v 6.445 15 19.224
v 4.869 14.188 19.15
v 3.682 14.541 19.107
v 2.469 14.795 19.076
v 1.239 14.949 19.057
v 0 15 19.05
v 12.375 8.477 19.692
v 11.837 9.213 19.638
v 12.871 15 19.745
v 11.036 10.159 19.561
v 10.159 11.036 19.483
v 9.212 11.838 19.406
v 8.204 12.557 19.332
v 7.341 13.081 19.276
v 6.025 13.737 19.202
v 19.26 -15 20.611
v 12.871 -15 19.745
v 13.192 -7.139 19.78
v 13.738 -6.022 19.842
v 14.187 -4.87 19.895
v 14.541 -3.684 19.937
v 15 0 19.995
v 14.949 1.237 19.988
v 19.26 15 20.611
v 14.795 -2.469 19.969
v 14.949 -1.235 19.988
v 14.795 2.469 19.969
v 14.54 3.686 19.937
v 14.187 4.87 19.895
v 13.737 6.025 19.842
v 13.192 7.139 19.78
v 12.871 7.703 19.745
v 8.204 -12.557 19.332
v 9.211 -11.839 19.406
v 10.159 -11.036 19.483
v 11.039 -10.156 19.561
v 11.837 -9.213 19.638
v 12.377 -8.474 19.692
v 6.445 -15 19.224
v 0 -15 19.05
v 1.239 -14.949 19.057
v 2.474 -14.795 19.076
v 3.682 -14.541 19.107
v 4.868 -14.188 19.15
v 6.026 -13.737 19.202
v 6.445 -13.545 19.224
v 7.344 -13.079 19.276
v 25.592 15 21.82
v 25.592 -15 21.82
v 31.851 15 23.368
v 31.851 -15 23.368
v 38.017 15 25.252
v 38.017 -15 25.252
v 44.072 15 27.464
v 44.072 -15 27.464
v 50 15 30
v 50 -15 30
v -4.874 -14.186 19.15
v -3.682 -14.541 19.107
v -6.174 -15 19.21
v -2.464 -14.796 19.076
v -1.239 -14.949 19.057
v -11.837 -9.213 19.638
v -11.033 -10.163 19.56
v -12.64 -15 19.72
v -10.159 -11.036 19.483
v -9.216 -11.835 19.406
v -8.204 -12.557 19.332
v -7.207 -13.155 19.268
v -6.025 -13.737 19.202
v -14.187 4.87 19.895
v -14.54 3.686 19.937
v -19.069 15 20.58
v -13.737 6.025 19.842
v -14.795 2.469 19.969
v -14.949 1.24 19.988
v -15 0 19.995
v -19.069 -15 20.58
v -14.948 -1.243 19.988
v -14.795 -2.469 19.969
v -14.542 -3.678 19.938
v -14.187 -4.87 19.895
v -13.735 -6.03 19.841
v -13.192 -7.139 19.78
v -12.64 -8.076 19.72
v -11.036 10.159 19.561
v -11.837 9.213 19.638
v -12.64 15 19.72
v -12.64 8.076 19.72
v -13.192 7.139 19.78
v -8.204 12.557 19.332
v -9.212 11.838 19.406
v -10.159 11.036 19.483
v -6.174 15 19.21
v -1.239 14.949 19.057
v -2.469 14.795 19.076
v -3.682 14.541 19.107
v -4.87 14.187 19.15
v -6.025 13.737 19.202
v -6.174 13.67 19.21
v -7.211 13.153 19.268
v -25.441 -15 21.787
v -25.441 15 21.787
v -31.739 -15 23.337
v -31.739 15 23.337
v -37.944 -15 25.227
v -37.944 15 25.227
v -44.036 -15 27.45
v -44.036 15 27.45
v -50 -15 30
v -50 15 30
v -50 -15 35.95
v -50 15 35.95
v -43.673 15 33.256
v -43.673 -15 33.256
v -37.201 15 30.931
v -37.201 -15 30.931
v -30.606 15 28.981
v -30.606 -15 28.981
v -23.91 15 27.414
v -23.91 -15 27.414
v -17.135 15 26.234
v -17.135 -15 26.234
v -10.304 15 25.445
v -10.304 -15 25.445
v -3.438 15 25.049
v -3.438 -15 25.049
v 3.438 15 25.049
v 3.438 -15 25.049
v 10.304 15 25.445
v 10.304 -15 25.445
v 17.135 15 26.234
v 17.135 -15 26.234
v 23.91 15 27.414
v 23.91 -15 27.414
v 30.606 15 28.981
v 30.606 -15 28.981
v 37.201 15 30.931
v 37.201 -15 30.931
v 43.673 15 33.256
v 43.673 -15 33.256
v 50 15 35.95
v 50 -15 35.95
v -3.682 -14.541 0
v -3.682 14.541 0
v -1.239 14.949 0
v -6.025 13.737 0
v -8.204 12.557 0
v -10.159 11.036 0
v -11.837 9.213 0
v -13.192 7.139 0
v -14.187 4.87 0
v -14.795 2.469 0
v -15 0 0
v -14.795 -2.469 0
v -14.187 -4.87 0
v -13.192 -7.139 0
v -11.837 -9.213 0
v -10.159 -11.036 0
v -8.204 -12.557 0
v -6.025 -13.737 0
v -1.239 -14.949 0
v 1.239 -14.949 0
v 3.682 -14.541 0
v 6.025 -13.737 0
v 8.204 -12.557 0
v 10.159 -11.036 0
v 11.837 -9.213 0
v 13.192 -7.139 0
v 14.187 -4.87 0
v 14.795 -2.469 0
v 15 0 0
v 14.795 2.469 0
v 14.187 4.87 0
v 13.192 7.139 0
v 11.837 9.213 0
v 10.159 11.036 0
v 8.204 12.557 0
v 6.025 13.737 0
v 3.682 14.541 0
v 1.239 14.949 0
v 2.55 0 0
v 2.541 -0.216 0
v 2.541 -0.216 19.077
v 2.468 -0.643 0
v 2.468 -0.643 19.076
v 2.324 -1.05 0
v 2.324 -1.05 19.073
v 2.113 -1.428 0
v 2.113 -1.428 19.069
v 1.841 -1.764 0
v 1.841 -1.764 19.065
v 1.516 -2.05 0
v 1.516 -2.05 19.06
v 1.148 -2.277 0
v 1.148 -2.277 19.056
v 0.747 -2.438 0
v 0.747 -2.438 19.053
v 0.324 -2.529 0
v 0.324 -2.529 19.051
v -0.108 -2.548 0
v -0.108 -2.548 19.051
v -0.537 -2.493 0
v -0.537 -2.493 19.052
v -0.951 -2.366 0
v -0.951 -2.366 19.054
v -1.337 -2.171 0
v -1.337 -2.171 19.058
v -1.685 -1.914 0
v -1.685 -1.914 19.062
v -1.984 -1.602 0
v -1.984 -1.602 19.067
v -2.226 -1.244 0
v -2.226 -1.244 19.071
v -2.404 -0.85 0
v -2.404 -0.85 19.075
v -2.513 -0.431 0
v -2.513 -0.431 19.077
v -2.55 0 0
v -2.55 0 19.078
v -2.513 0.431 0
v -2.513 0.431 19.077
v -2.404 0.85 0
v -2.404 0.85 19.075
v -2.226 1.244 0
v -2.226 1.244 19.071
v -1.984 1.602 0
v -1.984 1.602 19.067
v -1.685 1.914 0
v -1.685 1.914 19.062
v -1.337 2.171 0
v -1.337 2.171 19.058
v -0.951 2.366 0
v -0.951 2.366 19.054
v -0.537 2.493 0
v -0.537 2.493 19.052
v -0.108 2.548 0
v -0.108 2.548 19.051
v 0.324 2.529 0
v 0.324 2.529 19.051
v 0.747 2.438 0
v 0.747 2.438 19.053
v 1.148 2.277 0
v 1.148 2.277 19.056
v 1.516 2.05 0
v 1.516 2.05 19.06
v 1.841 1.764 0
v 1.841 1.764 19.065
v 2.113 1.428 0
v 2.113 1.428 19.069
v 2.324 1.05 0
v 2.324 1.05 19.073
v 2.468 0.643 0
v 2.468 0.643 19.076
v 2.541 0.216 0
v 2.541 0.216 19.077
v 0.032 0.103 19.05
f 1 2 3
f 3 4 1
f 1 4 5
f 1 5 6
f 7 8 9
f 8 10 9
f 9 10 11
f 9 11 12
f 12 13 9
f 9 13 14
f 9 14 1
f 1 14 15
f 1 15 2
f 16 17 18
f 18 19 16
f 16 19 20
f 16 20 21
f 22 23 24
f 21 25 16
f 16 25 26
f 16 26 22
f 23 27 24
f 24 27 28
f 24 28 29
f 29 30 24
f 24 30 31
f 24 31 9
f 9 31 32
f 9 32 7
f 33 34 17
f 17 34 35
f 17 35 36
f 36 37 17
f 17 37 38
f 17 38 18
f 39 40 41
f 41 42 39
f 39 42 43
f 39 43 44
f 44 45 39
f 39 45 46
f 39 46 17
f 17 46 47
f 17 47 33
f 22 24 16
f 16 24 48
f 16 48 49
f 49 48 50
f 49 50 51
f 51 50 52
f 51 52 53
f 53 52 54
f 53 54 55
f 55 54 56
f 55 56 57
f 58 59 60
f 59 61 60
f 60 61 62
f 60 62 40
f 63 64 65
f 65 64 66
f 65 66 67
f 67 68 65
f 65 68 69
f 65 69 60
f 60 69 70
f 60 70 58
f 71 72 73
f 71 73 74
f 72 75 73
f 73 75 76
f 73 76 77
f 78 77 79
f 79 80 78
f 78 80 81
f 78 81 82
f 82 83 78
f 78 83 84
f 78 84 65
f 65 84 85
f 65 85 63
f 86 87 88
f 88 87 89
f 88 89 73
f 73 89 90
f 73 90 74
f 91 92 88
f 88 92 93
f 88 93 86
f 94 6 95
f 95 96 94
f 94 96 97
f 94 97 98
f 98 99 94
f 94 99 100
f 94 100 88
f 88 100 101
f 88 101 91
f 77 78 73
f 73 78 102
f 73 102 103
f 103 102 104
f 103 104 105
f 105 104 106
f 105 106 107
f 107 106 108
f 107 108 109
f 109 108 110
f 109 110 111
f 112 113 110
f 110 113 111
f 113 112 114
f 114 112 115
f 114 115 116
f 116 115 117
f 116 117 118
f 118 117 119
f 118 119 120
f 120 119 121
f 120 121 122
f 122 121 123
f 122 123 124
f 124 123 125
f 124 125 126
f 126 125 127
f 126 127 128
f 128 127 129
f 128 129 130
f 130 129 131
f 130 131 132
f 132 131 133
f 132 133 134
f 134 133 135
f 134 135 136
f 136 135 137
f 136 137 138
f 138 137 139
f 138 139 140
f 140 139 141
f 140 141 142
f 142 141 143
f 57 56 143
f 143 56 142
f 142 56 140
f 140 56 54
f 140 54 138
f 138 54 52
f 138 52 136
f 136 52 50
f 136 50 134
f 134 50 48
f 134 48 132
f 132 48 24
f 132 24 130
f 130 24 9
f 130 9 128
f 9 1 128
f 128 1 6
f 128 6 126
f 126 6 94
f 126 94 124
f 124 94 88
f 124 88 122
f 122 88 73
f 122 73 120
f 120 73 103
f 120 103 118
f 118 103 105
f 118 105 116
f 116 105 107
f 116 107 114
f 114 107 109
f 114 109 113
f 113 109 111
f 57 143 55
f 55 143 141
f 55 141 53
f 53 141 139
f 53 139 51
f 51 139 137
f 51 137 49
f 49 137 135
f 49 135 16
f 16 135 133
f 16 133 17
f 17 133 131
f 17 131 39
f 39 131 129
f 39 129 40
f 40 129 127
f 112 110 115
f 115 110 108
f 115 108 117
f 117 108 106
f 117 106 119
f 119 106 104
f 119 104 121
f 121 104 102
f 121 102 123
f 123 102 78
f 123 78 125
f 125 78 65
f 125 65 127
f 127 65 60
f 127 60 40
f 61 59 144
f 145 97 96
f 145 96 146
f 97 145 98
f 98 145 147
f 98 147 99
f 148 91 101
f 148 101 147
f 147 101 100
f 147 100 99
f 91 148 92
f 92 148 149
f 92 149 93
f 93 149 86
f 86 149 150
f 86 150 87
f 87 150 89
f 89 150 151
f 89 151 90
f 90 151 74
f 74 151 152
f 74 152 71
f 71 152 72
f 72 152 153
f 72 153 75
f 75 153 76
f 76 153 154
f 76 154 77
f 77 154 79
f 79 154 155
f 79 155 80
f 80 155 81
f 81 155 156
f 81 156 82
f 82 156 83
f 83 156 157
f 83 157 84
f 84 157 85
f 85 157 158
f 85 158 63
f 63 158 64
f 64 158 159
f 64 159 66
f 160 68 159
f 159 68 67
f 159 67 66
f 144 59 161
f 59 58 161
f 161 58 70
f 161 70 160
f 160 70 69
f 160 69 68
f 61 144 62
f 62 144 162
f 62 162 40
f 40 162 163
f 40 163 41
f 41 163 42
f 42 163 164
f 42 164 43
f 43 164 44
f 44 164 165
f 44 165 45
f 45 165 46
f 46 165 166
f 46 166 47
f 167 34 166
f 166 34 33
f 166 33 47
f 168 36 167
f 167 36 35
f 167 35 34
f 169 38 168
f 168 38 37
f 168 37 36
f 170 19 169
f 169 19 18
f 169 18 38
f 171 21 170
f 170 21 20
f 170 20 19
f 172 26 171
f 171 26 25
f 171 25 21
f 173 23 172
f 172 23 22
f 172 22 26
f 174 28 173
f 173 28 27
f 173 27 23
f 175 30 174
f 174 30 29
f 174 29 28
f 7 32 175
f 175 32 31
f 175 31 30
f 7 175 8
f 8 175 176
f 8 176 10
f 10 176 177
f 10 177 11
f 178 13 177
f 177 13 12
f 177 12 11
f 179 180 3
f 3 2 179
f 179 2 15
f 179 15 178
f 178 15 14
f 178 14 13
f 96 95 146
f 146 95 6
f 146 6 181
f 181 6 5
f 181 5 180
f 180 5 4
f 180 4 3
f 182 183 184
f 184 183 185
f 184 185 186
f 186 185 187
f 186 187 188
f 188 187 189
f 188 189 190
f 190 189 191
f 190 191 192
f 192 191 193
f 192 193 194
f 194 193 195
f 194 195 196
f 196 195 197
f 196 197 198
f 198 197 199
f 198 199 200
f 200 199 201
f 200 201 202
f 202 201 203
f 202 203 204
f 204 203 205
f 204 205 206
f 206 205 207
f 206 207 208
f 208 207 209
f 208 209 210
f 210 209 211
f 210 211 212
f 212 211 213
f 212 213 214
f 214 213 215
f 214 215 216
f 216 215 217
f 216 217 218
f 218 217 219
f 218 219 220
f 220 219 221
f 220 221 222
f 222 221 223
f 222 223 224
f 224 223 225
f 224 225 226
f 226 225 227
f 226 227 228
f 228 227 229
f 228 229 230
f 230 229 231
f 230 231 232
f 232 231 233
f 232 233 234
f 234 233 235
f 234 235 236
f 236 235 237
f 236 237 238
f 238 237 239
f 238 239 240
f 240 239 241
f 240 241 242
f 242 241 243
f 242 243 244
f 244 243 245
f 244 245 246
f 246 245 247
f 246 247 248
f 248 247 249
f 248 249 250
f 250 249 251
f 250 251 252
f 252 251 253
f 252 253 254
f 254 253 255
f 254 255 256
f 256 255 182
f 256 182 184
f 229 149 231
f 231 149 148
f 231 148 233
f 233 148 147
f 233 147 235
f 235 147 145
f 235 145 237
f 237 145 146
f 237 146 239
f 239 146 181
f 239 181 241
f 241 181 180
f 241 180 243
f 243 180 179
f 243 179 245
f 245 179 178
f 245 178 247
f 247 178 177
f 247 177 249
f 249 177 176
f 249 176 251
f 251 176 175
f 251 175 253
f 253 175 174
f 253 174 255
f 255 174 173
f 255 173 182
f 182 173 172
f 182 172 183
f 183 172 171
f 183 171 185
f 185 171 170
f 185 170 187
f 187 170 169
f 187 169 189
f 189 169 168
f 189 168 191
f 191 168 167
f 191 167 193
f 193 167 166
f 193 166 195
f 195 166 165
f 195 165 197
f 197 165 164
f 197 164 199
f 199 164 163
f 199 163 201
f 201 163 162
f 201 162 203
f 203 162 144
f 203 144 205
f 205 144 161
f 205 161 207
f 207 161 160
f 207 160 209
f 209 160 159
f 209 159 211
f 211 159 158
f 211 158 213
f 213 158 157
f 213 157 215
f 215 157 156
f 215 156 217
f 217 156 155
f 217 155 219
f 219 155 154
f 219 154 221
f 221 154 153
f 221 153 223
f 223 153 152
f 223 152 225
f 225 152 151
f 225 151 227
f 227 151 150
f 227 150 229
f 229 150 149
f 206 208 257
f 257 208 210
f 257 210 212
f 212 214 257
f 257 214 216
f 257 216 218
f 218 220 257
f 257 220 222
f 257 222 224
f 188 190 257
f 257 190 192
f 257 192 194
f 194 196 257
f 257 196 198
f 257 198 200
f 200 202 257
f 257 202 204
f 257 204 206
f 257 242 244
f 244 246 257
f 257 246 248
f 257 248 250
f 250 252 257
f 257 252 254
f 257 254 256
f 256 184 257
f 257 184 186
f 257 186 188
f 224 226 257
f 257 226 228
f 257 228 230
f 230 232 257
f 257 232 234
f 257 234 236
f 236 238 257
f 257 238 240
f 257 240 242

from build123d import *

# Parameters (mm, degrees)
SKETCH1_R                = 15
SKETCH1_R_2              = 2.55
BOSS_EXTRUDE1_DEPTH      = 20
BOSS_EXTRUDE2_DEPTH      = 15
BOSS_EXTRUDE2_DEPTH_BACK = 15


with BuildPart() as part:
    # Sketch1 → Boss-Extrude1 (new body)
    with BuildSketch(Plane.XY):
        Circle(SKETCH1_R)
        Circle(SKETCH1_R_2, mode=Mode.SUBTRACT)
    extrude(amount=BOSS_EXTRUDE1_DEPTH)

    # Sketch2 → Boss-Extrude2 (add, two sides)
    with BuildSketch(Plane(origin=(0, 0, 0), x_dir=(1, 0, 0), z_dir=(0, 1, 0))) as boss_extrude2_sk:
        with BuildLine():
            Line((50, -35.949524979), (50, -30))
            ThreePointArc((50, -30), (0, -19.050475021), (-50, -30))
            Line((-50, -30), (-50, -35.949524979))
            ThreePointArc((-50, -35.949524979), (0, -25), (50, -35.949524979))
        make_face()
    extrude(amount=BOSS_EXTRUDE2_DEPTH)
    extrude(boss_extrude2_sk.sketch, amount=-BOSS_EXTRUDE2_DEPTH_BACK)


solid = part.part
